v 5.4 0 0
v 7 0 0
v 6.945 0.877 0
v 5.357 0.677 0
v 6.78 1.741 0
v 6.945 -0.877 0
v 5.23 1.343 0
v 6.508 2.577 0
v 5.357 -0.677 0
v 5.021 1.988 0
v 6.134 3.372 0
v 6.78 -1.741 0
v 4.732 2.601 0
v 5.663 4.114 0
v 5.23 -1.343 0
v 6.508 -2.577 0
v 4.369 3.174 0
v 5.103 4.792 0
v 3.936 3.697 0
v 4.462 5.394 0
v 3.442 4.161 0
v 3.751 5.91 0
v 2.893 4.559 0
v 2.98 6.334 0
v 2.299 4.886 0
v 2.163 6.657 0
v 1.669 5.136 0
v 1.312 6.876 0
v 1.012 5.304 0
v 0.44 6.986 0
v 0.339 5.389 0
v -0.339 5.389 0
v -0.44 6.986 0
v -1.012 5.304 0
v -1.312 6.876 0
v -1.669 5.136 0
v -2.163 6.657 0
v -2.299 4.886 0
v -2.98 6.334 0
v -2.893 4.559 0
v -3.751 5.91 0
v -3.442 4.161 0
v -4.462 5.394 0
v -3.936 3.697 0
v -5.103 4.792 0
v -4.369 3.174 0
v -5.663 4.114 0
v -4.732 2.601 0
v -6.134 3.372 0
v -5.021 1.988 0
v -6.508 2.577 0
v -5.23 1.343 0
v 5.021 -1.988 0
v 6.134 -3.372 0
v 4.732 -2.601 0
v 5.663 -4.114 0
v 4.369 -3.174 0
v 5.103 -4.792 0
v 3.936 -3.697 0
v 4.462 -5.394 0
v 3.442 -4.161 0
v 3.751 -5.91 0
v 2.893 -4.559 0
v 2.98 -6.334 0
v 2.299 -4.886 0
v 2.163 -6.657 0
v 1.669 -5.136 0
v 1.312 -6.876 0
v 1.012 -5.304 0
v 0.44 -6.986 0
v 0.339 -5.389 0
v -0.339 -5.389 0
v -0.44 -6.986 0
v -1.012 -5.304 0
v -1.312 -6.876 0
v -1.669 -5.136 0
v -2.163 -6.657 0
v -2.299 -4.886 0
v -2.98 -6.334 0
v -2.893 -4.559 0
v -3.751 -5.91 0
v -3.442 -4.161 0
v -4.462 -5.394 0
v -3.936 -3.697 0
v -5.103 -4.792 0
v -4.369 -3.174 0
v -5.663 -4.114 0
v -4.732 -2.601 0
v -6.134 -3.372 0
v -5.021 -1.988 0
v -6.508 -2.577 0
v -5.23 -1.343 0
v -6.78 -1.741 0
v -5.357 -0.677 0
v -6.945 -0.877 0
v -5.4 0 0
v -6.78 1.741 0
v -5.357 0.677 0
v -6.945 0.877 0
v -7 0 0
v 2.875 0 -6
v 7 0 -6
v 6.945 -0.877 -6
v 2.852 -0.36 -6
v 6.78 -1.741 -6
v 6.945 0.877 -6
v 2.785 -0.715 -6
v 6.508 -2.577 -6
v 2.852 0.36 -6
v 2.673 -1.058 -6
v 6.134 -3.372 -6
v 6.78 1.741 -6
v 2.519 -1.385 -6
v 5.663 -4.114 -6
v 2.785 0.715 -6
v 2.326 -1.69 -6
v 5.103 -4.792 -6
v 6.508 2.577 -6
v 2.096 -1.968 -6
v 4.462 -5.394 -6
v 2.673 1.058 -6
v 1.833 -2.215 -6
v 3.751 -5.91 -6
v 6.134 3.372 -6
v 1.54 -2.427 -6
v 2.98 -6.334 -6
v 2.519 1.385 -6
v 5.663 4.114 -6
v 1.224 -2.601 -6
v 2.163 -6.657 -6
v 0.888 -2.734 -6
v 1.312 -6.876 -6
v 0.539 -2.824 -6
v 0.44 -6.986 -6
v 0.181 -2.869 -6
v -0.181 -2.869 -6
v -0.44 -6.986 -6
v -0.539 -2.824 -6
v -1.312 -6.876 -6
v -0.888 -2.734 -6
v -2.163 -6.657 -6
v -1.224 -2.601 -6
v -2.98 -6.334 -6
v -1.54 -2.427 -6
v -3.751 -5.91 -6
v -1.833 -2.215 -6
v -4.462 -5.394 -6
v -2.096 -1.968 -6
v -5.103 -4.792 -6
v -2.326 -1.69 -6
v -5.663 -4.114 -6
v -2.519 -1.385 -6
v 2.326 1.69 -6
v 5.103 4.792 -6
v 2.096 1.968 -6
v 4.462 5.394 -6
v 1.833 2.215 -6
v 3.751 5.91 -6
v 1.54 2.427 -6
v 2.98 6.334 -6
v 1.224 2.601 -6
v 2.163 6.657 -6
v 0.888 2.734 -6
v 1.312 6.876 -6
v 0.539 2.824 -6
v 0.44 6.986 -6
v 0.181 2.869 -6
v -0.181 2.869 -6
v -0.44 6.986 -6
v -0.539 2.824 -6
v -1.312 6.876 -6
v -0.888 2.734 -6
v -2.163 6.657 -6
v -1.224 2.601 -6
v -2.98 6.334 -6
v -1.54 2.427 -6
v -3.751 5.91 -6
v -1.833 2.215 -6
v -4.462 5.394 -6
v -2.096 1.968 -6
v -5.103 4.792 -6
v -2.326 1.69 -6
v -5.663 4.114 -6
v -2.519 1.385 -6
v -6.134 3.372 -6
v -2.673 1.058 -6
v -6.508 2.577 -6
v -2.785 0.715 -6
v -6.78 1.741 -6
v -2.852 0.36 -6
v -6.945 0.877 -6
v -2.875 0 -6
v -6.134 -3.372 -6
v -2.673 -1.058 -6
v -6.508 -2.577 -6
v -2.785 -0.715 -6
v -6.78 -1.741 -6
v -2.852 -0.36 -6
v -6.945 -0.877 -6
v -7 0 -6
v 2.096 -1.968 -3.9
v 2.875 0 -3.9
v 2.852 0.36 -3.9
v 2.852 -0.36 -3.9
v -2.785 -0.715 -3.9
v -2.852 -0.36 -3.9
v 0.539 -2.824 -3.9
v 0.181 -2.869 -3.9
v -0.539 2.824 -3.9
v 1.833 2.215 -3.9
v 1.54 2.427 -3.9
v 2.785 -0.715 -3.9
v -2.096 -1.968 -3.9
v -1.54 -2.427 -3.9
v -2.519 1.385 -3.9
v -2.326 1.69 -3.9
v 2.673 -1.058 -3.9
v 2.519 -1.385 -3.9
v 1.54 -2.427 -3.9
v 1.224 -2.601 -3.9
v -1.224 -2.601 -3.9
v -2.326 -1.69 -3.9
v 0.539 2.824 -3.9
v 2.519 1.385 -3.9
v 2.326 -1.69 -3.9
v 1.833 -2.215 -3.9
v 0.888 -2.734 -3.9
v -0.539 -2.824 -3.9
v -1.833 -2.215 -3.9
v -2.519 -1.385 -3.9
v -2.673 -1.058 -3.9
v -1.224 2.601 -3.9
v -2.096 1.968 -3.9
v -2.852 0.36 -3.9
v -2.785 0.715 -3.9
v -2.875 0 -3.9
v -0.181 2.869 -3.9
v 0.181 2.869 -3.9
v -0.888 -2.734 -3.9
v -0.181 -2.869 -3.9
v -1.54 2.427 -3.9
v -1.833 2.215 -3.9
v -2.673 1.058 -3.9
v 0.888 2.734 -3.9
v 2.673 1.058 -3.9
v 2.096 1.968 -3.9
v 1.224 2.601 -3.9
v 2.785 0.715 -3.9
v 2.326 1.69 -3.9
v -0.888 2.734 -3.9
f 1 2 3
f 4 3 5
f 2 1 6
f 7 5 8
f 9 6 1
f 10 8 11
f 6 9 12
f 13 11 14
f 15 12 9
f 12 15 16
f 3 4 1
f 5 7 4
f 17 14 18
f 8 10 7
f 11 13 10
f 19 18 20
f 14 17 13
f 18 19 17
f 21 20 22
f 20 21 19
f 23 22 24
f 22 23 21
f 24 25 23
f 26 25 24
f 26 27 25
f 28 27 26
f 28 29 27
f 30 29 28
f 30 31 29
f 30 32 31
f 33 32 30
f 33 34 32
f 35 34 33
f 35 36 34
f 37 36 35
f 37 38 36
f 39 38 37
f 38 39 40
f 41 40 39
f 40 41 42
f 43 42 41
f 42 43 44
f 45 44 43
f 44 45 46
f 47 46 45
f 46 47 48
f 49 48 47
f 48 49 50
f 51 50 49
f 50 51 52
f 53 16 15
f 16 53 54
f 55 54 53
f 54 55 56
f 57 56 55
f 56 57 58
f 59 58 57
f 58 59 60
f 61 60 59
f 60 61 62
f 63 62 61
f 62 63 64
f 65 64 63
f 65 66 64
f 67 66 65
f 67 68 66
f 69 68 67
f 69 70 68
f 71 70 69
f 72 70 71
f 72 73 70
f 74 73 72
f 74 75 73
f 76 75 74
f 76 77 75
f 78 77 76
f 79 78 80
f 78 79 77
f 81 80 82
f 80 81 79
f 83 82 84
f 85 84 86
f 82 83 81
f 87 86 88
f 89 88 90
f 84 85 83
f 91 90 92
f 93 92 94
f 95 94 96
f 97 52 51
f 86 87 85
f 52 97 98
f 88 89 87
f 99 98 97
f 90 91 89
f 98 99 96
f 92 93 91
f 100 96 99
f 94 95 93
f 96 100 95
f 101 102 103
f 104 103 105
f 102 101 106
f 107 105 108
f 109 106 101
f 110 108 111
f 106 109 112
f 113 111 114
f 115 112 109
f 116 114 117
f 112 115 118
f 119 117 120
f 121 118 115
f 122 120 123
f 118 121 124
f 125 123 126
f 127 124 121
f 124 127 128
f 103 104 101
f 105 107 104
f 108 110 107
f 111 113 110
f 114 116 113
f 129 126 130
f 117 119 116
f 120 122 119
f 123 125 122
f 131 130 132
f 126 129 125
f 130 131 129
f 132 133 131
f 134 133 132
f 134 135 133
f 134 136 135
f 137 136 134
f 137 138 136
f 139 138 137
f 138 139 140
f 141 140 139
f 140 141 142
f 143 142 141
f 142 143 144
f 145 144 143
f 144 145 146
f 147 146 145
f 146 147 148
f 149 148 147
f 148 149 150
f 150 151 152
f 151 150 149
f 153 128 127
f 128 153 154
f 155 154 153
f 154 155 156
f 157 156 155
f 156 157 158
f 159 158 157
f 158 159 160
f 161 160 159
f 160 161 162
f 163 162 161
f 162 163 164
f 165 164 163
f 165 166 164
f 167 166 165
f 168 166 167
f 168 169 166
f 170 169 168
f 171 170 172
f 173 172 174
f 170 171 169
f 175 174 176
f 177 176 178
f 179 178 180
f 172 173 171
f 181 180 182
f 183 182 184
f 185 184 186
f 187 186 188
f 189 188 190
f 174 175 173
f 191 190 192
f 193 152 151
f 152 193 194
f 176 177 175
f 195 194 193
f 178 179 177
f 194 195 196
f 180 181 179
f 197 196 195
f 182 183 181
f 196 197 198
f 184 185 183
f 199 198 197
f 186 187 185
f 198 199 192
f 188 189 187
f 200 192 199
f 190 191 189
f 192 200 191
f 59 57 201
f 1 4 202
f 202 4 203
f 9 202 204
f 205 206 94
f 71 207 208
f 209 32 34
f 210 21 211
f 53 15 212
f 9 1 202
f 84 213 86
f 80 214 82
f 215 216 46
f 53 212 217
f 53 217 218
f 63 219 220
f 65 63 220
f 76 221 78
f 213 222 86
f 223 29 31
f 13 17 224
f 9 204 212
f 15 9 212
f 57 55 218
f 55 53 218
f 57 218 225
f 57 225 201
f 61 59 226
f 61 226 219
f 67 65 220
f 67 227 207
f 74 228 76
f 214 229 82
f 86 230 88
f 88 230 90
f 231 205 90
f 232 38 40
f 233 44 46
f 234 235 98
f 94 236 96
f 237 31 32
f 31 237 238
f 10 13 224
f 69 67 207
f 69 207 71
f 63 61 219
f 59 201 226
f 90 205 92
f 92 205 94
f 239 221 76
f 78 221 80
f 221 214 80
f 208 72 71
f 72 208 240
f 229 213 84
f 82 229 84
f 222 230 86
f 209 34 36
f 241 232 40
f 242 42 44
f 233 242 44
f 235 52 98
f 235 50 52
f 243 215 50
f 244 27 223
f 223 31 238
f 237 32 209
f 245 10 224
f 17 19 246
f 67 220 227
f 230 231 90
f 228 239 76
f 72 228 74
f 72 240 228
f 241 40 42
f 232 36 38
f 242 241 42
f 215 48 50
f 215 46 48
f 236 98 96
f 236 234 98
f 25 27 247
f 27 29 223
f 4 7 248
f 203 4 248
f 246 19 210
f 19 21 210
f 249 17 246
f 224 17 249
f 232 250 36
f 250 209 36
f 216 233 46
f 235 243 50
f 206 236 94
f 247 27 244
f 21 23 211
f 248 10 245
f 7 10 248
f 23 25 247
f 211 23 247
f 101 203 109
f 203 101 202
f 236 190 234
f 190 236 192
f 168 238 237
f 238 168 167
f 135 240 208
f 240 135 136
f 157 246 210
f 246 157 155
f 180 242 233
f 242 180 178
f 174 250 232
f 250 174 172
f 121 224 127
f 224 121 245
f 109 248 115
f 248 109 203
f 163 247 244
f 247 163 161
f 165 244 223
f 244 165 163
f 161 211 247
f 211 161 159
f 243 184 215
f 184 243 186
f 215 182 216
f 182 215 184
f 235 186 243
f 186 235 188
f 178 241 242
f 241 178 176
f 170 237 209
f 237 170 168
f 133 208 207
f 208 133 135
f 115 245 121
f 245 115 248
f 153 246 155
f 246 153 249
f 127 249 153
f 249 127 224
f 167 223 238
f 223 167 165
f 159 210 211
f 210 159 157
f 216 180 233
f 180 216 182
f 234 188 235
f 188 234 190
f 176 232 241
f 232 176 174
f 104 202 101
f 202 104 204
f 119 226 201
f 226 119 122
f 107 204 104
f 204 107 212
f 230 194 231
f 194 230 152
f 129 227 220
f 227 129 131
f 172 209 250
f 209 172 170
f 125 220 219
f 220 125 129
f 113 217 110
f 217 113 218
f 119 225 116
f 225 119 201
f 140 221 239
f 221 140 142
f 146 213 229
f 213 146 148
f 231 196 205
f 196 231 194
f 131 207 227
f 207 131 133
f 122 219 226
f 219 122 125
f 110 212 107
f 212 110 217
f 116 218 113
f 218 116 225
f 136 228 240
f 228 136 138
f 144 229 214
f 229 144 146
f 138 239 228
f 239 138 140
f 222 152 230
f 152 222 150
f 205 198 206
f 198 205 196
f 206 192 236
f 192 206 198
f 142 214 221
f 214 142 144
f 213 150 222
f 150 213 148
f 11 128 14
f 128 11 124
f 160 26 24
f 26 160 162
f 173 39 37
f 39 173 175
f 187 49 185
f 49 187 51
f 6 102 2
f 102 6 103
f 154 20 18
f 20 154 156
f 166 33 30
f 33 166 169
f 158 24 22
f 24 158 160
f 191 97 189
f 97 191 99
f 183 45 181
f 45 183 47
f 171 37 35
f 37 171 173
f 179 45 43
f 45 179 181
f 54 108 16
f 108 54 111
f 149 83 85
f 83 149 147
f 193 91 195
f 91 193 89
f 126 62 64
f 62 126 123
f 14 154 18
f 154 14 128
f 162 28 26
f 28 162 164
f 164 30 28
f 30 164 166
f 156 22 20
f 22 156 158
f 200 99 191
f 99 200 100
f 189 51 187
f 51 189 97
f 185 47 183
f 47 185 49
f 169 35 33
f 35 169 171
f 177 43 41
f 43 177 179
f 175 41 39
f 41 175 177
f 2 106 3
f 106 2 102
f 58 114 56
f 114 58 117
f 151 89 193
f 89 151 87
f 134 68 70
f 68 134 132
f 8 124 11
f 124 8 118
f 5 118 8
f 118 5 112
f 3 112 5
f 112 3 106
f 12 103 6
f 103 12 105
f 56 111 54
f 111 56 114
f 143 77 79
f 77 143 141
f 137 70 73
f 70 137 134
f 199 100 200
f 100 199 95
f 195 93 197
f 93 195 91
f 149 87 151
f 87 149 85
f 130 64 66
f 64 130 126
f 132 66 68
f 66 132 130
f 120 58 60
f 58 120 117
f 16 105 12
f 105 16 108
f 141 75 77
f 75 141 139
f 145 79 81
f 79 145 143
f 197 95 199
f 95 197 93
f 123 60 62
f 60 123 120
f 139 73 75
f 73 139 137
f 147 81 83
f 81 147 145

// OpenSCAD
$fn = 50;


difference() {
	union() {
		translate(v = [0, 0, -6.0000000000]) {
			cylinder(h = 6, r = 7.0000000000);
		}
		cylinder(h = 0, r = 16.0000000000);
	}
	union() {
		translate(v = [0, 0, 0]) {
			rotate(a = [0, 0, 0]) {
				difference() {
					union() {
						#translate(v = [0, 0, -6.0000000000]) {
							cylinder(h = 6, r = 2.6000000000);
						}
						#translate(v = [0, 0, -3.9000000000]) {
							cylinder(h = 3.9000000000, r = 7.0000000000, r1 = 2.8750000000, r2 = 5.4000000000);
						}
						#translate(v = [0, 0, -6.0000000000]) {
							cylinder(h = 6, r = 2.8750000000);
						}
						#translate(v = [0, 0, -6.0000000000]) {
							cylinder(h = 6, r = 2.6000000000);
						}
					}
					union();
				}
			}
		}
	}
}
